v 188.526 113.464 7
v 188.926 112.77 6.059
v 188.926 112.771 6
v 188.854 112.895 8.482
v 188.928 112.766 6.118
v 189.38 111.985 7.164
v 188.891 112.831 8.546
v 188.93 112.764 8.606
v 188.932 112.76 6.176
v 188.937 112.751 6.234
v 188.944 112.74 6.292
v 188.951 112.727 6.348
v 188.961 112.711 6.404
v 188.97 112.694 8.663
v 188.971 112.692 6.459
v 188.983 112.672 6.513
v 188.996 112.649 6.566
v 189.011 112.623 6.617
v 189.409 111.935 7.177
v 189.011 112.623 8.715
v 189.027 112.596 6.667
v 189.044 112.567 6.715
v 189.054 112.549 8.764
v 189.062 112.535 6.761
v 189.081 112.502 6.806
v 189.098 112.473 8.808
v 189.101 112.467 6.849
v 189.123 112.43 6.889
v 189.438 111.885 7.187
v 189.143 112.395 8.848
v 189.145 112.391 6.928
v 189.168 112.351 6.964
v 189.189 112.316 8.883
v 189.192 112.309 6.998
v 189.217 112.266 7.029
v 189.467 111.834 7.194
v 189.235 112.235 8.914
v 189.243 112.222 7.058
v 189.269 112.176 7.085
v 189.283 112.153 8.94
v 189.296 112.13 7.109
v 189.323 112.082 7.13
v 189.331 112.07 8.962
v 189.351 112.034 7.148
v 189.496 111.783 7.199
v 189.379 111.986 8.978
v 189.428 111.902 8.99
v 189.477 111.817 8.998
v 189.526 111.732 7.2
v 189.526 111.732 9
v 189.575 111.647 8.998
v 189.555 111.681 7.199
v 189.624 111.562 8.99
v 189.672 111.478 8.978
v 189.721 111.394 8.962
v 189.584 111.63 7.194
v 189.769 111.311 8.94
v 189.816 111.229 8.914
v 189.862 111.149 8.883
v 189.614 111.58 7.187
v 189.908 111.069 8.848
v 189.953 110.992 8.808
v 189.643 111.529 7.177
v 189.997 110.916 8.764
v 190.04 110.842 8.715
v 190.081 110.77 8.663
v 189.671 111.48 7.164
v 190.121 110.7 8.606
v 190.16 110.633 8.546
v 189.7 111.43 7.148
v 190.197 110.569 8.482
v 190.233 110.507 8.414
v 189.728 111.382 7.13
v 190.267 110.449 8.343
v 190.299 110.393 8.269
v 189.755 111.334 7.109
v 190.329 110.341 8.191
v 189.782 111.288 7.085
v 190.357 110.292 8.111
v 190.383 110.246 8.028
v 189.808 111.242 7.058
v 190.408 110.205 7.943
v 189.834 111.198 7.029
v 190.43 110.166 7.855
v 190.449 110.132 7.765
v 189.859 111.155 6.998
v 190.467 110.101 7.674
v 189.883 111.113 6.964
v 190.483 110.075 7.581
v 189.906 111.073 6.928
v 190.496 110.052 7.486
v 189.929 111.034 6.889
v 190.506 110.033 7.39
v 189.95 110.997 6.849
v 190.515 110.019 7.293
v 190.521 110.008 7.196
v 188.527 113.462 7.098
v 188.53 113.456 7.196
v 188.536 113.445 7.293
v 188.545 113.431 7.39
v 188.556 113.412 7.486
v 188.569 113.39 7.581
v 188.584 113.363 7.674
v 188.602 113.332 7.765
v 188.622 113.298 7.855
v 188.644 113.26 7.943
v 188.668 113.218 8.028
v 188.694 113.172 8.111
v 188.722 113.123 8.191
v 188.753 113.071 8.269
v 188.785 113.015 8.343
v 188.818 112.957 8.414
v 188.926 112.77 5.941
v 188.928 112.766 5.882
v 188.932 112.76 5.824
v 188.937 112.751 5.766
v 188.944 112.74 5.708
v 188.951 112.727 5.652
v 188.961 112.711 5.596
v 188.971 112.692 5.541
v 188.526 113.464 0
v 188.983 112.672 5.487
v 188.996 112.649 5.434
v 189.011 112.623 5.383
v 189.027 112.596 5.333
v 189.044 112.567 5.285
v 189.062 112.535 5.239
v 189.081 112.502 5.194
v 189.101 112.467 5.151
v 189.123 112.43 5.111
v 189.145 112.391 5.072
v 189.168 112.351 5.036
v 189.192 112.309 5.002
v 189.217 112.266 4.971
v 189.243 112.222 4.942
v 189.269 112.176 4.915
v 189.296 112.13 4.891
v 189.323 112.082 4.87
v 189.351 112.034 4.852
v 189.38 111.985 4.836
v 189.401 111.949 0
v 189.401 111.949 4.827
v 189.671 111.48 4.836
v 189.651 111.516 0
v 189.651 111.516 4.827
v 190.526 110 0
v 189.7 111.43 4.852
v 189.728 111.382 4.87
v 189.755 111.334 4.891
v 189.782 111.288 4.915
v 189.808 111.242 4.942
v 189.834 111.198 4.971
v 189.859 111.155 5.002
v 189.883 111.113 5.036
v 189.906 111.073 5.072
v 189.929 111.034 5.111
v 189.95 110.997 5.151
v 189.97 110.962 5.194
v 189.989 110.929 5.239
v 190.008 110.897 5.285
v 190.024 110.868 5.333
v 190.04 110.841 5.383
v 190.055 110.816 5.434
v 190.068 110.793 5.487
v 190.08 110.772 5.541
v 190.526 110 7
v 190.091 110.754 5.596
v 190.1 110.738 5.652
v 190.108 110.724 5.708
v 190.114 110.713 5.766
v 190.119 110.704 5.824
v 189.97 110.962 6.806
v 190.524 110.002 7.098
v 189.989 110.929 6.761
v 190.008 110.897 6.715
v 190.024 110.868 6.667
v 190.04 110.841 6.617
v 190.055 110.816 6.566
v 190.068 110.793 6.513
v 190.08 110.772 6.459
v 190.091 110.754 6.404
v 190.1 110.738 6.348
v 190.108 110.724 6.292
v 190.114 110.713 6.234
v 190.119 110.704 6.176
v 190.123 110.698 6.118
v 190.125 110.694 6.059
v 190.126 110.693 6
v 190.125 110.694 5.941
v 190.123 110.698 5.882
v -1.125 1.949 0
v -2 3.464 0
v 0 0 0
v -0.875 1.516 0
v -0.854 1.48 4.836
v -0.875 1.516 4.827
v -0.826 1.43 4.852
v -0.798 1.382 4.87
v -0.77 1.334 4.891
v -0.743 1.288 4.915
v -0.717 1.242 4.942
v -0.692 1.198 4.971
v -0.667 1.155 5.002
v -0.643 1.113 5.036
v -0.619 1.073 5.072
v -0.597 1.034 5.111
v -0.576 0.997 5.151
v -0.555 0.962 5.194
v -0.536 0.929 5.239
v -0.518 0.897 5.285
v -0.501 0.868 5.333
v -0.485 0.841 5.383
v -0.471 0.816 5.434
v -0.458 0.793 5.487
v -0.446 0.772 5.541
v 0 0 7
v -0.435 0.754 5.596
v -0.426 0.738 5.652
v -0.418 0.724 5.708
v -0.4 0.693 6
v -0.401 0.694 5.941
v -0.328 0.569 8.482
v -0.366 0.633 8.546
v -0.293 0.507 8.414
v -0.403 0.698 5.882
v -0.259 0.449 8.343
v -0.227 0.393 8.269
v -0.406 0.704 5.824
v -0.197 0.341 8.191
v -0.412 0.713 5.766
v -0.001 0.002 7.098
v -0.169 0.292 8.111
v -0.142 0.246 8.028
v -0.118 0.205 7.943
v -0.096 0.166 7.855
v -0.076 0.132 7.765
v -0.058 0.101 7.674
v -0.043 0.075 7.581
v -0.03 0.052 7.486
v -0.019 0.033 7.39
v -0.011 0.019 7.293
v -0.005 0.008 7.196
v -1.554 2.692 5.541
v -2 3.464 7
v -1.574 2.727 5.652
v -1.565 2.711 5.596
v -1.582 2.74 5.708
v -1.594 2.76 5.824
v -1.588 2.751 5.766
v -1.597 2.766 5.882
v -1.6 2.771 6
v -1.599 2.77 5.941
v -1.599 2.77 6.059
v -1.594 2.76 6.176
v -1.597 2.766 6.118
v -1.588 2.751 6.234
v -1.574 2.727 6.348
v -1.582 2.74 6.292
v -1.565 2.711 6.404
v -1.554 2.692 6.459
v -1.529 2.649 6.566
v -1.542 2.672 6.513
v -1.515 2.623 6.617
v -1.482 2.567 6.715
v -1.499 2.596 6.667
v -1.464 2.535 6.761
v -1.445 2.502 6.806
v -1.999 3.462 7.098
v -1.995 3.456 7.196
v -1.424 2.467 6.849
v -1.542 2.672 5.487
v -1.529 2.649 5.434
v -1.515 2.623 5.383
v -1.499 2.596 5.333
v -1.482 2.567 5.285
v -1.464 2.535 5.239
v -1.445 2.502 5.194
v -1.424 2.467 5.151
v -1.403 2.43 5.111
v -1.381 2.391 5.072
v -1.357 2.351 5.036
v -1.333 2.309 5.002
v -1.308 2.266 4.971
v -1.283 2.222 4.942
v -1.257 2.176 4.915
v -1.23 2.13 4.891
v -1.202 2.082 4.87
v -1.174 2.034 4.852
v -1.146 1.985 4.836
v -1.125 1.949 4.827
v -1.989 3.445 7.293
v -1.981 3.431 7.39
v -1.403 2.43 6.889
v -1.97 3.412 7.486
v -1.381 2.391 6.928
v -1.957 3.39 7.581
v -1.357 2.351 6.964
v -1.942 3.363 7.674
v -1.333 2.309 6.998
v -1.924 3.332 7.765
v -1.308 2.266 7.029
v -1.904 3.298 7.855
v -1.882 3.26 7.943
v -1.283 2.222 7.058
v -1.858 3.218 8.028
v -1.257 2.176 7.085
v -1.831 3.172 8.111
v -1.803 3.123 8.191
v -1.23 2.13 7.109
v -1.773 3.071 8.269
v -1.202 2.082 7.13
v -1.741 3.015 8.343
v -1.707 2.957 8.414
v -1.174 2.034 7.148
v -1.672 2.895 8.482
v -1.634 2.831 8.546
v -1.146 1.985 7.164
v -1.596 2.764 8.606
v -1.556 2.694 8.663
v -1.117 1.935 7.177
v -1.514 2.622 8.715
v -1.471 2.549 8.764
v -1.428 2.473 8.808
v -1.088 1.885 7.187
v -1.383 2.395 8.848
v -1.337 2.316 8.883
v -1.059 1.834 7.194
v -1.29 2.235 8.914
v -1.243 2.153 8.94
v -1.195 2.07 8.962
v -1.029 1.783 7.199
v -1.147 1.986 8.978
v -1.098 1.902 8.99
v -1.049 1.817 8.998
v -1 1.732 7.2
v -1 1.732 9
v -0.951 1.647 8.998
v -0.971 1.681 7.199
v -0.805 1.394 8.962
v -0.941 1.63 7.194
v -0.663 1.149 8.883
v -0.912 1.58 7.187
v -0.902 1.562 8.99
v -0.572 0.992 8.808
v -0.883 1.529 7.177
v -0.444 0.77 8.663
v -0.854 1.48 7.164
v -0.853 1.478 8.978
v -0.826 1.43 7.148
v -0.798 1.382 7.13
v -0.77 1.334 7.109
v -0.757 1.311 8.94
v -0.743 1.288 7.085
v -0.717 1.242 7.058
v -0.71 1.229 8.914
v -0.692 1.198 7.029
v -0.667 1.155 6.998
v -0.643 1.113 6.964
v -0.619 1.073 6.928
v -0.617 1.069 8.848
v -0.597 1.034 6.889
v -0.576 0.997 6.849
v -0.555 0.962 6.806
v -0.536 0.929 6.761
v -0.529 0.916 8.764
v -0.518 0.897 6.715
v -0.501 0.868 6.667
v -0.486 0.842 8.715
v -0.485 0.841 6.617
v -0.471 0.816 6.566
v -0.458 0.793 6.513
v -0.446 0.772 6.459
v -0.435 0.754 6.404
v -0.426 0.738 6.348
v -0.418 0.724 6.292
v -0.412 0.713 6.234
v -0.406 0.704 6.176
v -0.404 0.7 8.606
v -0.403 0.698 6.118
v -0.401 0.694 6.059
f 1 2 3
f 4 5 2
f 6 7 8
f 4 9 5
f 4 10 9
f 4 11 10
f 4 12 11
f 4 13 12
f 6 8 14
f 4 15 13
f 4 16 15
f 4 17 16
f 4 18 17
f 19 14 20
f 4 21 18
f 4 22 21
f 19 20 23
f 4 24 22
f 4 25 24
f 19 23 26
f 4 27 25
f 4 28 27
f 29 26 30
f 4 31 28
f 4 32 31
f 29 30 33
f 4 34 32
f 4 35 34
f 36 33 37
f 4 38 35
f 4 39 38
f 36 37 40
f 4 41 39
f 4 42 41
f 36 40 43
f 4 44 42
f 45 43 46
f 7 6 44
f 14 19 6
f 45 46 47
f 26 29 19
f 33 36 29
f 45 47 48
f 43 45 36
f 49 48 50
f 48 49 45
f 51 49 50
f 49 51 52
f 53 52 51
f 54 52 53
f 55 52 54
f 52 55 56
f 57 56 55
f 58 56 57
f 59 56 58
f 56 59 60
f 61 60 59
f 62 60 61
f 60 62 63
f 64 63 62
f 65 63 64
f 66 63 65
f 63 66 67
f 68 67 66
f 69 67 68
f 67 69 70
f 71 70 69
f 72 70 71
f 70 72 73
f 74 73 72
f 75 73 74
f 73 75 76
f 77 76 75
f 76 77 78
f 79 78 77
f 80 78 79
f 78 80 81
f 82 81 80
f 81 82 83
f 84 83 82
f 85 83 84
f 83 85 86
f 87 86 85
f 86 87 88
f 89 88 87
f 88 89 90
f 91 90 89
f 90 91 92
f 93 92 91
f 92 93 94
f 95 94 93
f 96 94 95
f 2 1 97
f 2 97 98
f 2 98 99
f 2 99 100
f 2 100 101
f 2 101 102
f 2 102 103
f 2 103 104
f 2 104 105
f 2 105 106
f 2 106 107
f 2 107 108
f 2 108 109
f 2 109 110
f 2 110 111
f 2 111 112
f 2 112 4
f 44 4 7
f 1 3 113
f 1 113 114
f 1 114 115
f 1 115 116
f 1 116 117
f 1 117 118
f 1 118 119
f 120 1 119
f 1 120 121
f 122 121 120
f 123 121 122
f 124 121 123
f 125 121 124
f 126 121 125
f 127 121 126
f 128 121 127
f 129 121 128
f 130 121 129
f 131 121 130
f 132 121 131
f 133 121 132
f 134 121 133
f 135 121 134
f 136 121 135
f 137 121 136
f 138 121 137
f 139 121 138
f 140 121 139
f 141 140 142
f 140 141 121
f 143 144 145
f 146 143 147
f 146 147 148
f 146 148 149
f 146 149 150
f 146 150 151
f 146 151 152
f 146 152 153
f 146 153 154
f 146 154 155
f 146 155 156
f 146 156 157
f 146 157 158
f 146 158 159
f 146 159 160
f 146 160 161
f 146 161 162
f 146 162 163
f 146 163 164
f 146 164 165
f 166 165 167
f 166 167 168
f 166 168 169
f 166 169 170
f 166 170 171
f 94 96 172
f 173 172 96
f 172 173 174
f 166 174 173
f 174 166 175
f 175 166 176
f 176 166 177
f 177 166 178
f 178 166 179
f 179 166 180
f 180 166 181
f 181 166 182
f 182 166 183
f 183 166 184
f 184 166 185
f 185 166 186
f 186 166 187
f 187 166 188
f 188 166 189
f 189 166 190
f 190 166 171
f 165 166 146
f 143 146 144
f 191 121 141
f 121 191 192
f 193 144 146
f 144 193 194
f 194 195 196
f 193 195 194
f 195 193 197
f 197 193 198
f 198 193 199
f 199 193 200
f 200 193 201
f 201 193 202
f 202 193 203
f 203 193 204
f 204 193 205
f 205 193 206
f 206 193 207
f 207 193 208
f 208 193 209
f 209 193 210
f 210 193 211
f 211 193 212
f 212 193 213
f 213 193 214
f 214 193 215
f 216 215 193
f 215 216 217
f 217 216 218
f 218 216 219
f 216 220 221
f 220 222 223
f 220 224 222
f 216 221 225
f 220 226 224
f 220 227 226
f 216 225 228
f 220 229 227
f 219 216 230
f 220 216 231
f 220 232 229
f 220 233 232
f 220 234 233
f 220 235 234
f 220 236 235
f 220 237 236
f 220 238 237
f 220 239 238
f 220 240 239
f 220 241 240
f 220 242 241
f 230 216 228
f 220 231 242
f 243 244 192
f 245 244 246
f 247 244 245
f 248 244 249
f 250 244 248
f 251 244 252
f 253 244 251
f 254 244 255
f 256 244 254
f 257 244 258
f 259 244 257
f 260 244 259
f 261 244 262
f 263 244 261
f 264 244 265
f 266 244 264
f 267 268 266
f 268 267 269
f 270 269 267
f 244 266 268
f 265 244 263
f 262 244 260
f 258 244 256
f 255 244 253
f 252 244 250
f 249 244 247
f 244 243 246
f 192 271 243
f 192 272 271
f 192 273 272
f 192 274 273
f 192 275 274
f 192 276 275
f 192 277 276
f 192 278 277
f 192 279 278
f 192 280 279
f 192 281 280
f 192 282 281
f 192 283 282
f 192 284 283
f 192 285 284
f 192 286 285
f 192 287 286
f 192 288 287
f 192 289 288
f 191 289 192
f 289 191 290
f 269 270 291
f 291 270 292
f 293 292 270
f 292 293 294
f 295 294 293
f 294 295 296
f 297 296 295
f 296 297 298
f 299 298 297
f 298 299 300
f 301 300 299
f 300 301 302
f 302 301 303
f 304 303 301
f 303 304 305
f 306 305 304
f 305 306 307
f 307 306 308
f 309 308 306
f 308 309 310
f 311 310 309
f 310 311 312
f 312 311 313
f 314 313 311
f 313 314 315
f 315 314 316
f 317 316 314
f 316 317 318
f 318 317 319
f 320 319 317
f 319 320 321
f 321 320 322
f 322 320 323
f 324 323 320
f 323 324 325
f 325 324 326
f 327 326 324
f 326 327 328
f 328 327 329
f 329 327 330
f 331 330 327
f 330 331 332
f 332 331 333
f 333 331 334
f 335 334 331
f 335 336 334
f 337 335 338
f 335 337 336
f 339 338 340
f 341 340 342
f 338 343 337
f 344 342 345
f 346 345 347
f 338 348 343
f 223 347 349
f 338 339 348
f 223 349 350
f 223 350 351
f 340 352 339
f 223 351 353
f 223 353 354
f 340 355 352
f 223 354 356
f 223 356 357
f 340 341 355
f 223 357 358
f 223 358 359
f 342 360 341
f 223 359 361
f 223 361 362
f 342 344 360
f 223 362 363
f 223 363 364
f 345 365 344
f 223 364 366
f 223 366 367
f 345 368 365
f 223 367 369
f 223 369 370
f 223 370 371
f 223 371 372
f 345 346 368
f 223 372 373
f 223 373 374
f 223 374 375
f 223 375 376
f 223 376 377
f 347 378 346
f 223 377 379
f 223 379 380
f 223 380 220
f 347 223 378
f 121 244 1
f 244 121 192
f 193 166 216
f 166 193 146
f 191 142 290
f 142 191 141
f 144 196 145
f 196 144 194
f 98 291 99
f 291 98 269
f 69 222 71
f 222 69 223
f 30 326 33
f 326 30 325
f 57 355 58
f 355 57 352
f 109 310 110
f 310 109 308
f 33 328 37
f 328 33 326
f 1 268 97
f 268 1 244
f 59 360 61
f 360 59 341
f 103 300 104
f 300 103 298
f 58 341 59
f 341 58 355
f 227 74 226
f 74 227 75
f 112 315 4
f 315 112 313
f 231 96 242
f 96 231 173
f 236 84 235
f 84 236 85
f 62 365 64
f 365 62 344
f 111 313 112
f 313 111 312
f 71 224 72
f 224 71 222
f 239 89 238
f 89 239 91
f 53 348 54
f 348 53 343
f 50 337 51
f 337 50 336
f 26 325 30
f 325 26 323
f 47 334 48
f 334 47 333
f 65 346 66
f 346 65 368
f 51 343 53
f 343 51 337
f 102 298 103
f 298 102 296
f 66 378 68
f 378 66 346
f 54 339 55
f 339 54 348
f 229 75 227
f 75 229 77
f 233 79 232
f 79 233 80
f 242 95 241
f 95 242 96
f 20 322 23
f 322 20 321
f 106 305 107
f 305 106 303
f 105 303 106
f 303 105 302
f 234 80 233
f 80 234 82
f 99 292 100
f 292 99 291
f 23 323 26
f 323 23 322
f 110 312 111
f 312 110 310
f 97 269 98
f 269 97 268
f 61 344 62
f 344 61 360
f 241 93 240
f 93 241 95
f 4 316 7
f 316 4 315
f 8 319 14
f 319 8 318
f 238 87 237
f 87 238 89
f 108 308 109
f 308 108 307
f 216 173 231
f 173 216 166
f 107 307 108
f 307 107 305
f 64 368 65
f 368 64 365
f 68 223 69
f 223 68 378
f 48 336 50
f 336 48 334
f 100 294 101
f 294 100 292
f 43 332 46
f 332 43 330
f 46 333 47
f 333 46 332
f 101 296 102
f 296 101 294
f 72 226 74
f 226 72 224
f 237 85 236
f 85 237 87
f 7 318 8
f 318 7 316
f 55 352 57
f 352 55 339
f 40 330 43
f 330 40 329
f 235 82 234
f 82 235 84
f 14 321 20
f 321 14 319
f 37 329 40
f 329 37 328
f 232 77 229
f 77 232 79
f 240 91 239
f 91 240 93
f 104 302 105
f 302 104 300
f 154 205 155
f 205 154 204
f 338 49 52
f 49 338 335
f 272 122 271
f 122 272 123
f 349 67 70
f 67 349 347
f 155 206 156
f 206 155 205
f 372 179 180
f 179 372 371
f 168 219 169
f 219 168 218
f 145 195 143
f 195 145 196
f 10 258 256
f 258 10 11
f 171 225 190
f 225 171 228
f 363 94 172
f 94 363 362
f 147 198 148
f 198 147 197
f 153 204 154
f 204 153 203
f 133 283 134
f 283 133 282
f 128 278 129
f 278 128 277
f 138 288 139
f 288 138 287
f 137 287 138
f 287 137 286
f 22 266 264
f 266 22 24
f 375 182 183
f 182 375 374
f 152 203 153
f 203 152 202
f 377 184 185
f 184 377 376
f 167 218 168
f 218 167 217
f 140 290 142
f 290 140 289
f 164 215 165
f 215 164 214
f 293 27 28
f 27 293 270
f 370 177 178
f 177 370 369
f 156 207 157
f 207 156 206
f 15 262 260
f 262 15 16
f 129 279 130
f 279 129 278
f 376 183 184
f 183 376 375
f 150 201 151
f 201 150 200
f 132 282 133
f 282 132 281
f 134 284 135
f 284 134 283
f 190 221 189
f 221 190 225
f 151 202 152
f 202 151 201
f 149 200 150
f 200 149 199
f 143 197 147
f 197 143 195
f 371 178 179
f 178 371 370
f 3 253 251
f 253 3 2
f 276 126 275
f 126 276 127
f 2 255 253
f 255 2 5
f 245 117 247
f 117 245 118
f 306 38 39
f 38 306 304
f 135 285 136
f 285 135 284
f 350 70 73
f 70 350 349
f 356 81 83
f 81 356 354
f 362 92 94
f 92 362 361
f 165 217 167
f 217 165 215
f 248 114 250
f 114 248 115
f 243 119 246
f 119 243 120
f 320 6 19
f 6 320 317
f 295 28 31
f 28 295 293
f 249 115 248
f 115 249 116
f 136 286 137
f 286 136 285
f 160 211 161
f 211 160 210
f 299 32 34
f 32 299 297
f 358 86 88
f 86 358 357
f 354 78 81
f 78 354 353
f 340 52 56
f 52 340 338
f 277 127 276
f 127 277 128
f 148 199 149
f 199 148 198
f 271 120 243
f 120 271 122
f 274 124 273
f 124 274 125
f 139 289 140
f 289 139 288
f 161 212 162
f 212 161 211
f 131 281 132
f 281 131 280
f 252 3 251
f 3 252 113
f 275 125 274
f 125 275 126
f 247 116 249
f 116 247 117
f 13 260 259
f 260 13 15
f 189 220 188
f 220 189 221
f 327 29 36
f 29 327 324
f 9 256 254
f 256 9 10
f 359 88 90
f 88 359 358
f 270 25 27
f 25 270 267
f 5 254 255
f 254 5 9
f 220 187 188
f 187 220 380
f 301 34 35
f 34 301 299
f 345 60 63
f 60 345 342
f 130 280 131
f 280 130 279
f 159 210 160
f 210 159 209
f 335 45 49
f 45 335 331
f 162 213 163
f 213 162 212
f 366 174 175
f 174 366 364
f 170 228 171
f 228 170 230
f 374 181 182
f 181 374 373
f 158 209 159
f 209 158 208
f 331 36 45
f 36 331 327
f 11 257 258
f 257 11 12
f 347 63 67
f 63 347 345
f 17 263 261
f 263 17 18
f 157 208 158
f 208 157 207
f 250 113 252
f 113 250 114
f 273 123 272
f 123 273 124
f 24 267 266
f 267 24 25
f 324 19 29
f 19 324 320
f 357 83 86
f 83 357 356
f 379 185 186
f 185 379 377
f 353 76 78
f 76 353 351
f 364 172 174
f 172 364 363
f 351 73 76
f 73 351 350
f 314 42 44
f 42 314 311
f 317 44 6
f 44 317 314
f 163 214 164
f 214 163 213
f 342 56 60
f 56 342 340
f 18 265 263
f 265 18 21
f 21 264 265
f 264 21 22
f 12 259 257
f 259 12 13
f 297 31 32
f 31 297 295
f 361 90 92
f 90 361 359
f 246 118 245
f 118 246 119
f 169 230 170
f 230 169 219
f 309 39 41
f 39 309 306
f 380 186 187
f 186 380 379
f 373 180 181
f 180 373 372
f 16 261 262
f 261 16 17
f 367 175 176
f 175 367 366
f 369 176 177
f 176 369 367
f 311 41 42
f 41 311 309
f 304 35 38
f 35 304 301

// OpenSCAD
// Generated by SolidPython 0.4.6 on 2020-04-04 13:21:45


rotate(a = [0, 0, 30]) {
	difference() {
		union() {
			difference() {
				cube(size = [220.0000000000, 4.0000000000, 7.0000000000]);
				translate(v = [0, 1.7500000000, 0]) {
					cube(size = [220.0000000000, 0.5000000000, 6.0000000000]);
				}
			}
			translate(v = [0, 2.0000000000, 0]) {
				translate(v = [0, 0, 7.0000000000]) {
					rotate(a = [0, 90, 0]) {
						cylinder($fn = 128, d = 4.0000000000, h = 220.0000000000);
					}
				}
			}
		}
		translate(v = [0, 2.0000000000, 0]) {
			translate(v = [0, 0, 6.0000000000]) {
				rotate(a = [0, 90, 0]) {
					cylinder($fn = 128, d = 2.4000000000, h = 220.0000000000);
				}
			}
		}
	}
}
/***********************************************
*********      SolidPython code:      **********
************************************************
 
import solid as s
import solid.utils as u
import math

def render(suffix, final):
    suffix += ".scad"
    s.scad_render_to_file(final, __file__.replace(".py", suffix))

wire_dia = 2.4
wire_rad = wire_dia / 2.0
wire_height = 6.0
cheek_len = 220.0
cheek_height = 7.0
cheek_depth = 4.0

ear_height = 60.0
ear_length = 10.0
ear_depth = 10.0
fabric_height = 160.0
fabric_thick = 0.5
slot_edge = 3.0
slot_height = ear_height - slot_edge - slot_edge
slot = 3.0
wedge = slot - fabric_thick
wedge_height = slot_height - fabric_thick
wedge_stop = 5.0
lug_hole = 5.0

# earpiece
e = s.cube(size=[ear_length, ear_depth, ear_height])

# earpiece slot
e -= u.up(slot_edge)(
    u.forward((ear_depth / 2.0) - (slot / 2.0))(
        s.cube(size=[ear_length, slot, slot_height])
    )
)
# earpiece lugs
lug = s.cylinder(d=ear_depth, h=ear_length, segments=128)
lug -= s.cylinder(d=lug_hole, h=ear_length, segments=128)
lug -= u.back(ear_depth / 2.0)(
    s.cube(size=[ear_length, ear_depth, ear_length])
)
e += u.up(ear_height)(u.forward(ear_depth / 2.0)(
        u.rotate(a=[0,90,0])(lug)
    )
)
e += u.forward(ear_depth / 2.0)(
    u.right(ear_length)(
        u.rotate(a=[0,-90,0])(lug)
    )
)

# wedge
w = s.cube(size=[ear_length, wedge, wedge_height])
w += u.right(ear_length)(
    s.cube(size=[wedge_stop, wedge_stop, wedge_height])
)

# cheek wire surround
c = s.cube(size=[cheek_len, cheek_depth, cheek_height])
c -= u.forward((cheek_depth / 2.0) - (fabric_thick / 2.0))(
    s.cube(size=[cheek_len, fabric_thick, wire_height])
)
c += u.forward(cheek_depth / 2.0)(
    u.up(cheek_height)(
        u.rotate(a=[0,90,0])(
            s.cylinder(d=cheek_depth, h=cheek_len, segments=128)
        )
    )
)
c -= u.forward(cheek_depth / 2.0)(
    u.up(wire_height)(
        u.rotate(a=[0,90,0])(
            s.cylinder(d=wire_dia, h=cheek_len, segments=128)
        )
    )
)

final = u.left(ear_length)(e) + \
    u.left(ear_length + wedge_stop)(u.back(6.0)(w)) + \
    u.left(cheek_depth)(u.back(14.0)(c))

render('', s.rotate(a=[0, 90, 0])(final))
render('ear', s.rotate(a=[0, -90, 0])(e))
render('wedge', u.up(ear_length + wedge_stop)(s.rotate(a=[0, 90, 0])(w)))
render('cheek', s.rotate(a=[0, 0, 30])(c))
# s.scad_render_to_file(final, __file__.replace('.py', '.scad'))
 
 
************************************************/
